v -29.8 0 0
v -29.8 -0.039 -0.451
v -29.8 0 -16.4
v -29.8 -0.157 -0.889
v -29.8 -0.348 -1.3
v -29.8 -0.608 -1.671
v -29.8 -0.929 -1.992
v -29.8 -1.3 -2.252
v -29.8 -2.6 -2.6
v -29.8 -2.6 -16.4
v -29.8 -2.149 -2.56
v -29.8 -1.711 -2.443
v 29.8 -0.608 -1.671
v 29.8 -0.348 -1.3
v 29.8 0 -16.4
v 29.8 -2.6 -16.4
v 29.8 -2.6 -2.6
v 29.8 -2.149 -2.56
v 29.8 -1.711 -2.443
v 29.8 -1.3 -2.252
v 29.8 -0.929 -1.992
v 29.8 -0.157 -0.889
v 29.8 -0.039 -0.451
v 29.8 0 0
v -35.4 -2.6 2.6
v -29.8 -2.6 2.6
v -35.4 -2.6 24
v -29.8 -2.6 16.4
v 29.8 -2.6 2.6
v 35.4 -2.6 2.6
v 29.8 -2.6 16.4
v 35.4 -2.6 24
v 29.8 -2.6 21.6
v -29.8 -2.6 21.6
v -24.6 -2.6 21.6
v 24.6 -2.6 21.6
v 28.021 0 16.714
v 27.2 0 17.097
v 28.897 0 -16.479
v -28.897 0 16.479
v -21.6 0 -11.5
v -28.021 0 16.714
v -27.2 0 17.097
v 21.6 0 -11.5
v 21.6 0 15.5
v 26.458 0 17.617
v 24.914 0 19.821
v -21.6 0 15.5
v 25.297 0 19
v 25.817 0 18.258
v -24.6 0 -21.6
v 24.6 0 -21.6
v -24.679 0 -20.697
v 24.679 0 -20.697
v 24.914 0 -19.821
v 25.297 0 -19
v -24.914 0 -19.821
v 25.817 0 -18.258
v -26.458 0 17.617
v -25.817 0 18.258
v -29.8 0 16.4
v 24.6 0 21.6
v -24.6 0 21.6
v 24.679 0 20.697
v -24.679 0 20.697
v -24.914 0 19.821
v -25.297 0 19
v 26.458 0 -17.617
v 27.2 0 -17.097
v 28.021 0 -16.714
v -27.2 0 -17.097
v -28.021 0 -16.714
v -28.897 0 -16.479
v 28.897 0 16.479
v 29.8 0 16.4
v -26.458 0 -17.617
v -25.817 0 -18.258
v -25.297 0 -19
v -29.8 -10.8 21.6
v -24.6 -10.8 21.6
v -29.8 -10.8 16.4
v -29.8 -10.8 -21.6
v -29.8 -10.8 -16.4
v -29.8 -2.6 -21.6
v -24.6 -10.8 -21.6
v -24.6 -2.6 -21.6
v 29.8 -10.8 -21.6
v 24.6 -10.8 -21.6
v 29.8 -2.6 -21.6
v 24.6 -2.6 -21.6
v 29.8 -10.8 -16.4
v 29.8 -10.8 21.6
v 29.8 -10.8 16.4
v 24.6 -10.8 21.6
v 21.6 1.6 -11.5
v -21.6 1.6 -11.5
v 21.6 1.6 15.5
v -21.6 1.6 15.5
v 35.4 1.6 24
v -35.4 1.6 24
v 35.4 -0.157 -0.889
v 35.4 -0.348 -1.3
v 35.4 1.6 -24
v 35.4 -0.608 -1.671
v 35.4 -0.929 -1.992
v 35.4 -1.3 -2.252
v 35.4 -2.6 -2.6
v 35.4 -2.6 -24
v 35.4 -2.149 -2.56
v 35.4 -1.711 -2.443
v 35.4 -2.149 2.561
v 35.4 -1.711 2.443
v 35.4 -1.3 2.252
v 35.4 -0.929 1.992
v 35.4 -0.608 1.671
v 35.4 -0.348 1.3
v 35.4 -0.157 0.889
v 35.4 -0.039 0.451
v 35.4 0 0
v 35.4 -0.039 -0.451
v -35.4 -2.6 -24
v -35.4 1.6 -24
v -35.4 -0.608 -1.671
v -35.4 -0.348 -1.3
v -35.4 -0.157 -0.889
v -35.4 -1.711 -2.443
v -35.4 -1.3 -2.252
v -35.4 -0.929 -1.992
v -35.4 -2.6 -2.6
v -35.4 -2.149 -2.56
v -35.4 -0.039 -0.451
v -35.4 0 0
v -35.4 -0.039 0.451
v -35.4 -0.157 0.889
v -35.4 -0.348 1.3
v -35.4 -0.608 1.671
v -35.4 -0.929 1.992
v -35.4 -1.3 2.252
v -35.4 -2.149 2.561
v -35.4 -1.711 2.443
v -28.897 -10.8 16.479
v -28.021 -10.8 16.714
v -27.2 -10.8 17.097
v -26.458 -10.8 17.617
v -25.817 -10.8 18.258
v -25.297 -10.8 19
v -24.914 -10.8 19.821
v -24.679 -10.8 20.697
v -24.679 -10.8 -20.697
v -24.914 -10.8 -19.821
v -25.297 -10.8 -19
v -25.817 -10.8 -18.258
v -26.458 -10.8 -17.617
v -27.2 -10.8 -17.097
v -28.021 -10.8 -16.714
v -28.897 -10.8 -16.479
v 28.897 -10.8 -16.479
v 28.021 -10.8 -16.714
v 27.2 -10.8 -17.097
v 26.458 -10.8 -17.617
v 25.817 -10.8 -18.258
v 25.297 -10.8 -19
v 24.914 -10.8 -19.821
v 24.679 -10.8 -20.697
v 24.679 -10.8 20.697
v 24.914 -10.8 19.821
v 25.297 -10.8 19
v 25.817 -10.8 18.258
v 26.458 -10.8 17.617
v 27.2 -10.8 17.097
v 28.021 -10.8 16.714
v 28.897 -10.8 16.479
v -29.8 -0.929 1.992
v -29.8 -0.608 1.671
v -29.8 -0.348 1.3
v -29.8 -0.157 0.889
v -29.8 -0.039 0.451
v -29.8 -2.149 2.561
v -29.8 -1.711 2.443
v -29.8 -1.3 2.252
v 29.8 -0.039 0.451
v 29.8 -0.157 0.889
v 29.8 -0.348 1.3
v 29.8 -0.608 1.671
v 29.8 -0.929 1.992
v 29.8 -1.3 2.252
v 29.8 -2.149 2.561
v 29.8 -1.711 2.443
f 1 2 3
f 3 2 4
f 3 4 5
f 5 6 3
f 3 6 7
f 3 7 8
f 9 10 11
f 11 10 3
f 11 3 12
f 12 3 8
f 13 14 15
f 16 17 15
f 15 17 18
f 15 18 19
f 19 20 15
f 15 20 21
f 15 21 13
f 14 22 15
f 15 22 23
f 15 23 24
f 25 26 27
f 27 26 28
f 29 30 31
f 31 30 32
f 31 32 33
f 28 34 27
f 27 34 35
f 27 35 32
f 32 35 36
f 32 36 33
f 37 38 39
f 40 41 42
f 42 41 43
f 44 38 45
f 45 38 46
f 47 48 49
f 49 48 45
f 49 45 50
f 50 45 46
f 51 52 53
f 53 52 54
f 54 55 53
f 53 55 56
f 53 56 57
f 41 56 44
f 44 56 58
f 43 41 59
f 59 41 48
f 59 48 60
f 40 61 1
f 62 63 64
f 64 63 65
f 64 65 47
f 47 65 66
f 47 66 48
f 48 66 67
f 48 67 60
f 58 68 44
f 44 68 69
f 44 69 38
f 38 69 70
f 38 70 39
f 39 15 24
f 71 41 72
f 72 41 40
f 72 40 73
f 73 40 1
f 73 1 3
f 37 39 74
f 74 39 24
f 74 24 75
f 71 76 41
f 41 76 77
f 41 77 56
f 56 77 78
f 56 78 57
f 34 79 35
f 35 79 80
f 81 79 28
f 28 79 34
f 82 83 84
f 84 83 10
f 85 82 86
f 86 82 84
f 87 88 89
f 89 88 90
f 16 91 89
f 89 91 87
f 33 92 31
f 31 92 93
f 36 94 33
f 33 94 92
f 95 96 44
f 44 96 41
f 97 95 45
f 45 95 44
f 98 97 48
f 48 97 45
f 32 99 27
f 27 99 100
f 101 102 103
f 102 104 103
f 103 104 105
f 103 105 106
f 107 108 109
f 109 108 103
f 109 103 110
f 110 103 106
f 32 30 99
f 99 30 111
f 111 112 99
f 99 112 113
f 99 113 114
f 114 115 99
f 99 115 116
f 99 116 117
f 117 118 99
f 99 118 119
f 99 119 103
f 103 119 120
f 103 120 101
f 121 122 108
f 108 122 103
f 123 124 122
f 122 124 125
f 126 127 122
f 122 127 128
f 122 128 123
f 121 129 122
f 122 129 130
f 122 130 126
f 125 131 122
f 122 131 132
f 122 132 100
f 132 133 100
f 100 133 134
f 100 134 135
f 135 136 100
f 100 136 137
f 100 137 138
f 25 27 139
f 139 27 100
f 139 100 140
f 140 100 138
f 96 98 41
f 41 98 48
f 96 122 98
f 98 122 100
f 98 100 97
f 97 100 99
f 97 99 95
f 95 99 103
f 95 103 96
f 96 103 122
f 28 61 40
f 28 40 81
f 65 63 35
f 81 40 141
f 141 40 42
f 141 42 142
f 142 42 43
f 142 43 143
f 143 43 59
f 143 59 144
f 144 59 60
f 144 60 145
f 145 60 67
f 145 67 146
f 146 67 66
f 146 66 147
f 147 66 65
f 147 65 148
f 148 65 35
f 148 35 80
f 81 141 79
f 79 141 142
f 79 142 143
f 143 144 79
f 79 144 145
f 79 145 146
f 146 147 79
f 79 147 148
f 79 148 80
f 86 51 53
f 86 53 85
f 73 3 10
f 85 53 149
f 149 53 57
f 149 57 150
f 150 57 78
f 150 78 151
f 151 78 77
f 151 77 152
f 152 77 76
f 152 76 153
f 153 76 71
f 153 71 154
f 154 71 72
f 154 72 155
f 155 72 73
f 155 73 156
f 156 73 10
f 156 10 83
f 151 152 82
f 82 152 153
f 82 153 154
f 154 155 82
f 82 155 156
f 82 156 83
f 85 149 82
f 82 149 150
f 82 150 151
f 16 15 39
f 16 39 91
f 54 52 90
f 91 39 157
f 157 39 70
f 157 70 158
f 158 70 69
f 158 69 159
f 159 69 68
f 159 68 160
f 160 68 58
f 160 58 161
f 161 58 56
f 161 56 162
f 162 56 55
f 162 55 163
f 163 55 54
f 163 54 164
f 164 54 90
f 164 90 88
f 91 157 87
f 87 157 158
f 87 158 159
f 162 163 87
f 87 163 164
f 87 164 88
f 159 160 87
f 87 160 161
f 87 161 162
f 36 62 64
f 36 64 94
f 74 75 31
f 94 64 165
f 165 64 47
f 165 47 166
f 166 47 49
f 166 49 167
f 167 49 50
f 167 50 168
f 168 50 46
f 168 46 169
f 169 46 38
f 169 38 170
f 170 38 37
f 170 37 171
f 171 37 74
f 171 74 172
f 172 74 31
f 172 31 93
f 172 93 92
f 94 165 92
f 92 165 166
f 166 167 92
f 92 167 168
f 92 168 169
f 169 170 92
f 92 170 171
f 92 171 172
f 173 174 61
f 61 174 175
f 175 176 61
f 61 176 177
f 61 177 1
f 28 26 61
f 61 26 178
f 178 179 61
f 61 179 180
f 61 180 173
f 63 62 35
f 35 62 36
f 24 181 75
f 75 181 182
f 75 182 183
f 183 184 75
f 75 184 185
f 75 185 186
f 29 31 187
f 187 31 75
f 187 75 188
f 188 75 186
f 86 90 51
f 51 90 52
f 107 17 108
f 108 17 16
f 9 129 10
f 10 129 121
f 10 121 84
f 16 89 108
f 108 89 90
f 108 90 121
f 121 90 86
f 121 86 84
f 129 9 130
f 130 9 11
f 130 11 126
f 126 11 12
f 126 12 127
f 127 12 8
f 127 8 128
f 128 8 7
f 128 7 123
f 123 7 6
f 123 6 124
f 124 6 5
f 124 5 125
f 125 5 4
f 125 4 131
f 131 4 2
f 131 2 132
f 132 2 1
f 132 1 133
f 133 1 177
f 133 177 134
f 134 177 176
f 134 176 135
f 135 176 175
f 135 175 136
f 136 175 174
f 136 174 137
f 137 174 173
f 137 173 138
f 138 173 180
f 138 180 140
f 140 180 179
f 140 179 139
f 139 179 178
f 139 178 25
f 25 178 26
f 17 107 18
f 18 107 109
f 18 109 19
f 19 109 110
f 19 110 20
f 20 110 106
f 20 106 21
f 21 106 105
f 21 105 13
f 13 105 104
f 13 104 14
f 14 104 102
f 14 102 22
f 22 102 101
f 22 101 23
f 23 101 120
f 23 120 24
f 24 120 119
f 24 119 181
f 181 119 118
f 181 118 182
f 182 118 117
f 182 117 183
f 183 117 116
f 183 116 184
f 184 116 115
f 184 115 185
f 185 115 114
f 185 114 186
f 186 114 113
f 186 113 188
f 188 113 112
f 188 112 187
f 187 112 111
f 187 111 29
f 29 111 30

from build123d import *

# Parameters (mm, degrees)
CROQUIS1_W              = 70.8
CROQUIS1_H              = 48
CROQUIS1_W_2            = 60.4
CROQUIS1_H_2            = 44
CROQUIS1_W_3            = 59.6
CROQUIS1_H_3            = 43.2
CROQUIS1_W_4            = 43.2
CROQUIS1_H_4            = 27
SALIENTE_EXTRUIR1_DEPTH = 1.6
SALIENTE_EXTRUIR2_DEPTH = 10.8
CROQUIS1_5_W            = 70.8
CROQUIS1_5_H            = 48
CROQUIS1_5_W_2          = 60.4
CROQUIS1_5_H_2          = 44
CROQUIS1_5_W_3          = 59.6
CROQUIS1_5_H_3          = 43.2
SALIENTE_EXTRUIR3_DEPTH = 2.6
CORTAR_EXTRUIR1_REACH   = 77.533


with BuildPart() as part:
    # Croquis1 → Saliente-Extruir1 (new body)
    # profile 1 of 7: a face of its own
    with BuildSketch(Plane(origin=(0, 0, 0), x_dir=(1, 0, 0), z_dir=(0, 1, 0))):
        Rectangle(CROQUIS1_W, CROQUIS1_H)
        Rectangle(CROQUIS1_W_2, CROQUIS1_H_2, mode=Mode.SUBTRACT)
    # profile 2 of 7: a face of its own
    with BuildSketch(Plane(origin=(0, 0, 0), x_dir=(1, 0, 0), z_dir=(0, 1, 0))):
        Rectangle(CROQUIS1_W_2, CROQUIS1_H_2)
        Rectangle(CROQUIS1_W_3, CROQUIS1_H_3, mode=Mode.SUBTRACT)
    # profile 3 of 7: a face of its own
    with BuildSketch(Plane(origin=(0, 0, 0), x_dir=(1, 0, 0), z_dir=(0, 1, 0))):
        with BuildLine():
            ThreePointArc((-29.8, -16.4), (-26.123044738, -17.923044738), (-24.6, -21.6))
            Line((-24.6, -21.6), (24.6, -21.6))
            ThreePointArc((24.6, -21.6), (26.123044738, -17.923044738), (29.8, -16.4))
            Line((29.8, -16.4), (29.8, 16.4))
            ThreePointArc((29.8, 16.4), (26.123044738, 17.923044738), (24.6, 21.6))
            Line((24.6, 21.6), (-24.6, 21.6))
            ThreePointArc((-24.6, 21.6), (-26.123044738, 17.923044738), (-29.8, 16.4))
            Line((-29.8, 16.4), (-29.8, -16.4))
        make_face()
        with Locations((0, -2)):
            Rectangle(CROQUIS1_W_4, CROQUIS1_H_4, mode=Mode.SUBTRACT)
    # profile 4 of 7: a face of its own
    with BuildSketch(Plane(origin=(0, 0, 0), x_dir=(1, 0, 0), z_dir=(0, 1, 0))):
        with BuildLine():
            ThreePointArc((29.8, -16.4), (26.123044738, -17.923044738), (24.6, -21.6))
            Line((24.6, -21.6), (29.8, -21.6))
            Line((29.8, -21.6), (29.8, -16.4))
        make_face()
    # profile 5 of 7: a face of its own
    with BuildSketch(Plane(origin=(0, 0, 0), x_dir=(1, 0, 0), z_dir=(0, 1, 0))):
        with BuildLine():
            ThreePointArc((24.6, 21.6), (26.123044738, 17.923044738), (29.8, 16.4))
            Line((29.8, 16.4), (29.8, 21.6))
            Line((29.8, 21.6), (24.6, 21.6))
        make_face()
    # profile 6 of 7: a face of its own
    with BuildSketch(Plane(origin=(0, 0, 0), x_dir=(1, 0, 0), z_dir=(0, 1, 0))):
        with BuildLine():
            Line((-29.8, 21.6), (-29.8, 16.4))
            ThreePointArc((-29.8, 16.4), (-26.123044738, 17.923044738), (-24.6, 21.6))
            Line((-24.6, 21.6), (-29.8, 21.6))
        make_face()
    # profile 7 of 7: a face of its own
    with BuildSketch(Plane(origin=(0, 0, 0), x_dir=(1, 0, 0), z_dir=(0, 1, 0))):
        with BuildLine():
            Line((-29.8, -16.4), (-29.8, -21.6))
            Line((-29.8, -21.6), (-24.6, -21.6))
            ThreePointArc((-24.6, -21.6), (-26.123044738, -17.923044738), (-29.8, -16.4))
        make_face()
    extrude(amount=SALIENTE_EXTRUIR1_DEPTH)

    # Croquis1<4> → Saliente-Extruir2 (add)
    with BuildSketch(Plane(origin=(0, 0, 0), x_dir=(1, 0, 0), z_dir=(0, 1, 0))):
        with BuildLine():
            Line((-29.8, -16.4), (-29.8, -21.6))
            Line((-29.8, -21.6), (-24.6, -21.6))
            ThreePointArc((-24.6, -21.6), (-26.123044738, -17.923044738), (-29.8, -16.4))
        make_face()
        with BuildLine():
            Line((-29.8, 21.6), (-29.8, 16.4))
            ThreePointArc((-29.8, 16.4), (-26.123044738, 17.923044738), (-24.6, 21.6))
            Line((-24.6, 21.6), (-29.8, 21.6))
        make_face()
        with BuildLine():
            ThreePointArc((24.6, 21.6), (26.123044738, 17.923044738), (29.8, 16.4))
            Line((29.8, 16.4), (29.8, 21.6))
            Line((29.8, 21.6), (24.6, 21.6))
        make_face()
        with BuildLine():
            ThreePointArc((29.8, -16.4), (26.123044738, -17.923044738), (24.6, -21.6))
            Line((24.6, -21.6), (29.8, -21.6))
            Line((29.8, -21.6), (29.8, -16.4))
        make_face()
    extrude(amount=-SALIENTE_EXTRUIR2_DEPTH)

    # Croquis1<5> → Saliente-Extruir3 (add)
    # profile 1 of 2: a face of its own
    with BuildSketch(Plane(origin=(0, 0, 0), x_dir=(1, 0, 0), z_dir=(0, 1, 0))):
        Rectangle(CROQUIS1_5_W, CROQUIS1_5_H)
        Rectangle(CROQUIS1_5_W_2, CROQUIS1_5_H_2, mode=Mode.SUBTRACT)
    # profile 2 of 2: a face of its own
    with BuildSketch(Plane(origin=(0, 0, 0), x_dir=(1, 0, 0), z_dir=(0, 1, 0))):
        Rectangle(CROQUIS1_5_W_2, CROQUIS1_5_H_2)
        Rectangle(CROQUIS1_5_W_3, CROQUIS1_5_H_3, mode=Mode.SUBTRACT)
    extrude(amount=-SALIENTE_EXTRUIR3_DEPTH)

    # Cortar-Extruir1: up to this face of the body (flat: up to its plane)
    cortar_extruir1_end = Plane(part.part.faces().sort_by_distance((-35.4, -0.5, 0))[0])
    # Croquis2 → Cortar-Extruir1 (cut, up to the picked face)
    with BuildSketch(Plane(origin=(35.4, 0, 0), x_dir=(0, 0, -1), z_dir=(1, 0, 0)), mode=Mode.PRIVATE) as cortar_extruir1_sk1:
        with BuildLine():
            Line((-2.6, -2.6), (2.6, -2.6))
            ThreePointArc((2.6, -2.6), (0, 0), (-2.6, -2.6))
        make_face()
    cortar_extruir1_tool1 = split(extrude(cortar_extruir1_sk1.sketch, amount=-CORTAR_EXTRUIR1_REACH, mode=Mode.PRIVATE), bisect_by=cortar_extruir1_end, keep=Keep.BOTH, mode=Mode.PRIVATE)
    add(cortar_extruir1_tool1.solids().sort_by(Axis((35.4, -1.496526, 0), (-1, 0, 0)))[0], mode=Mode.SUBTRACT)


solid = part.part
